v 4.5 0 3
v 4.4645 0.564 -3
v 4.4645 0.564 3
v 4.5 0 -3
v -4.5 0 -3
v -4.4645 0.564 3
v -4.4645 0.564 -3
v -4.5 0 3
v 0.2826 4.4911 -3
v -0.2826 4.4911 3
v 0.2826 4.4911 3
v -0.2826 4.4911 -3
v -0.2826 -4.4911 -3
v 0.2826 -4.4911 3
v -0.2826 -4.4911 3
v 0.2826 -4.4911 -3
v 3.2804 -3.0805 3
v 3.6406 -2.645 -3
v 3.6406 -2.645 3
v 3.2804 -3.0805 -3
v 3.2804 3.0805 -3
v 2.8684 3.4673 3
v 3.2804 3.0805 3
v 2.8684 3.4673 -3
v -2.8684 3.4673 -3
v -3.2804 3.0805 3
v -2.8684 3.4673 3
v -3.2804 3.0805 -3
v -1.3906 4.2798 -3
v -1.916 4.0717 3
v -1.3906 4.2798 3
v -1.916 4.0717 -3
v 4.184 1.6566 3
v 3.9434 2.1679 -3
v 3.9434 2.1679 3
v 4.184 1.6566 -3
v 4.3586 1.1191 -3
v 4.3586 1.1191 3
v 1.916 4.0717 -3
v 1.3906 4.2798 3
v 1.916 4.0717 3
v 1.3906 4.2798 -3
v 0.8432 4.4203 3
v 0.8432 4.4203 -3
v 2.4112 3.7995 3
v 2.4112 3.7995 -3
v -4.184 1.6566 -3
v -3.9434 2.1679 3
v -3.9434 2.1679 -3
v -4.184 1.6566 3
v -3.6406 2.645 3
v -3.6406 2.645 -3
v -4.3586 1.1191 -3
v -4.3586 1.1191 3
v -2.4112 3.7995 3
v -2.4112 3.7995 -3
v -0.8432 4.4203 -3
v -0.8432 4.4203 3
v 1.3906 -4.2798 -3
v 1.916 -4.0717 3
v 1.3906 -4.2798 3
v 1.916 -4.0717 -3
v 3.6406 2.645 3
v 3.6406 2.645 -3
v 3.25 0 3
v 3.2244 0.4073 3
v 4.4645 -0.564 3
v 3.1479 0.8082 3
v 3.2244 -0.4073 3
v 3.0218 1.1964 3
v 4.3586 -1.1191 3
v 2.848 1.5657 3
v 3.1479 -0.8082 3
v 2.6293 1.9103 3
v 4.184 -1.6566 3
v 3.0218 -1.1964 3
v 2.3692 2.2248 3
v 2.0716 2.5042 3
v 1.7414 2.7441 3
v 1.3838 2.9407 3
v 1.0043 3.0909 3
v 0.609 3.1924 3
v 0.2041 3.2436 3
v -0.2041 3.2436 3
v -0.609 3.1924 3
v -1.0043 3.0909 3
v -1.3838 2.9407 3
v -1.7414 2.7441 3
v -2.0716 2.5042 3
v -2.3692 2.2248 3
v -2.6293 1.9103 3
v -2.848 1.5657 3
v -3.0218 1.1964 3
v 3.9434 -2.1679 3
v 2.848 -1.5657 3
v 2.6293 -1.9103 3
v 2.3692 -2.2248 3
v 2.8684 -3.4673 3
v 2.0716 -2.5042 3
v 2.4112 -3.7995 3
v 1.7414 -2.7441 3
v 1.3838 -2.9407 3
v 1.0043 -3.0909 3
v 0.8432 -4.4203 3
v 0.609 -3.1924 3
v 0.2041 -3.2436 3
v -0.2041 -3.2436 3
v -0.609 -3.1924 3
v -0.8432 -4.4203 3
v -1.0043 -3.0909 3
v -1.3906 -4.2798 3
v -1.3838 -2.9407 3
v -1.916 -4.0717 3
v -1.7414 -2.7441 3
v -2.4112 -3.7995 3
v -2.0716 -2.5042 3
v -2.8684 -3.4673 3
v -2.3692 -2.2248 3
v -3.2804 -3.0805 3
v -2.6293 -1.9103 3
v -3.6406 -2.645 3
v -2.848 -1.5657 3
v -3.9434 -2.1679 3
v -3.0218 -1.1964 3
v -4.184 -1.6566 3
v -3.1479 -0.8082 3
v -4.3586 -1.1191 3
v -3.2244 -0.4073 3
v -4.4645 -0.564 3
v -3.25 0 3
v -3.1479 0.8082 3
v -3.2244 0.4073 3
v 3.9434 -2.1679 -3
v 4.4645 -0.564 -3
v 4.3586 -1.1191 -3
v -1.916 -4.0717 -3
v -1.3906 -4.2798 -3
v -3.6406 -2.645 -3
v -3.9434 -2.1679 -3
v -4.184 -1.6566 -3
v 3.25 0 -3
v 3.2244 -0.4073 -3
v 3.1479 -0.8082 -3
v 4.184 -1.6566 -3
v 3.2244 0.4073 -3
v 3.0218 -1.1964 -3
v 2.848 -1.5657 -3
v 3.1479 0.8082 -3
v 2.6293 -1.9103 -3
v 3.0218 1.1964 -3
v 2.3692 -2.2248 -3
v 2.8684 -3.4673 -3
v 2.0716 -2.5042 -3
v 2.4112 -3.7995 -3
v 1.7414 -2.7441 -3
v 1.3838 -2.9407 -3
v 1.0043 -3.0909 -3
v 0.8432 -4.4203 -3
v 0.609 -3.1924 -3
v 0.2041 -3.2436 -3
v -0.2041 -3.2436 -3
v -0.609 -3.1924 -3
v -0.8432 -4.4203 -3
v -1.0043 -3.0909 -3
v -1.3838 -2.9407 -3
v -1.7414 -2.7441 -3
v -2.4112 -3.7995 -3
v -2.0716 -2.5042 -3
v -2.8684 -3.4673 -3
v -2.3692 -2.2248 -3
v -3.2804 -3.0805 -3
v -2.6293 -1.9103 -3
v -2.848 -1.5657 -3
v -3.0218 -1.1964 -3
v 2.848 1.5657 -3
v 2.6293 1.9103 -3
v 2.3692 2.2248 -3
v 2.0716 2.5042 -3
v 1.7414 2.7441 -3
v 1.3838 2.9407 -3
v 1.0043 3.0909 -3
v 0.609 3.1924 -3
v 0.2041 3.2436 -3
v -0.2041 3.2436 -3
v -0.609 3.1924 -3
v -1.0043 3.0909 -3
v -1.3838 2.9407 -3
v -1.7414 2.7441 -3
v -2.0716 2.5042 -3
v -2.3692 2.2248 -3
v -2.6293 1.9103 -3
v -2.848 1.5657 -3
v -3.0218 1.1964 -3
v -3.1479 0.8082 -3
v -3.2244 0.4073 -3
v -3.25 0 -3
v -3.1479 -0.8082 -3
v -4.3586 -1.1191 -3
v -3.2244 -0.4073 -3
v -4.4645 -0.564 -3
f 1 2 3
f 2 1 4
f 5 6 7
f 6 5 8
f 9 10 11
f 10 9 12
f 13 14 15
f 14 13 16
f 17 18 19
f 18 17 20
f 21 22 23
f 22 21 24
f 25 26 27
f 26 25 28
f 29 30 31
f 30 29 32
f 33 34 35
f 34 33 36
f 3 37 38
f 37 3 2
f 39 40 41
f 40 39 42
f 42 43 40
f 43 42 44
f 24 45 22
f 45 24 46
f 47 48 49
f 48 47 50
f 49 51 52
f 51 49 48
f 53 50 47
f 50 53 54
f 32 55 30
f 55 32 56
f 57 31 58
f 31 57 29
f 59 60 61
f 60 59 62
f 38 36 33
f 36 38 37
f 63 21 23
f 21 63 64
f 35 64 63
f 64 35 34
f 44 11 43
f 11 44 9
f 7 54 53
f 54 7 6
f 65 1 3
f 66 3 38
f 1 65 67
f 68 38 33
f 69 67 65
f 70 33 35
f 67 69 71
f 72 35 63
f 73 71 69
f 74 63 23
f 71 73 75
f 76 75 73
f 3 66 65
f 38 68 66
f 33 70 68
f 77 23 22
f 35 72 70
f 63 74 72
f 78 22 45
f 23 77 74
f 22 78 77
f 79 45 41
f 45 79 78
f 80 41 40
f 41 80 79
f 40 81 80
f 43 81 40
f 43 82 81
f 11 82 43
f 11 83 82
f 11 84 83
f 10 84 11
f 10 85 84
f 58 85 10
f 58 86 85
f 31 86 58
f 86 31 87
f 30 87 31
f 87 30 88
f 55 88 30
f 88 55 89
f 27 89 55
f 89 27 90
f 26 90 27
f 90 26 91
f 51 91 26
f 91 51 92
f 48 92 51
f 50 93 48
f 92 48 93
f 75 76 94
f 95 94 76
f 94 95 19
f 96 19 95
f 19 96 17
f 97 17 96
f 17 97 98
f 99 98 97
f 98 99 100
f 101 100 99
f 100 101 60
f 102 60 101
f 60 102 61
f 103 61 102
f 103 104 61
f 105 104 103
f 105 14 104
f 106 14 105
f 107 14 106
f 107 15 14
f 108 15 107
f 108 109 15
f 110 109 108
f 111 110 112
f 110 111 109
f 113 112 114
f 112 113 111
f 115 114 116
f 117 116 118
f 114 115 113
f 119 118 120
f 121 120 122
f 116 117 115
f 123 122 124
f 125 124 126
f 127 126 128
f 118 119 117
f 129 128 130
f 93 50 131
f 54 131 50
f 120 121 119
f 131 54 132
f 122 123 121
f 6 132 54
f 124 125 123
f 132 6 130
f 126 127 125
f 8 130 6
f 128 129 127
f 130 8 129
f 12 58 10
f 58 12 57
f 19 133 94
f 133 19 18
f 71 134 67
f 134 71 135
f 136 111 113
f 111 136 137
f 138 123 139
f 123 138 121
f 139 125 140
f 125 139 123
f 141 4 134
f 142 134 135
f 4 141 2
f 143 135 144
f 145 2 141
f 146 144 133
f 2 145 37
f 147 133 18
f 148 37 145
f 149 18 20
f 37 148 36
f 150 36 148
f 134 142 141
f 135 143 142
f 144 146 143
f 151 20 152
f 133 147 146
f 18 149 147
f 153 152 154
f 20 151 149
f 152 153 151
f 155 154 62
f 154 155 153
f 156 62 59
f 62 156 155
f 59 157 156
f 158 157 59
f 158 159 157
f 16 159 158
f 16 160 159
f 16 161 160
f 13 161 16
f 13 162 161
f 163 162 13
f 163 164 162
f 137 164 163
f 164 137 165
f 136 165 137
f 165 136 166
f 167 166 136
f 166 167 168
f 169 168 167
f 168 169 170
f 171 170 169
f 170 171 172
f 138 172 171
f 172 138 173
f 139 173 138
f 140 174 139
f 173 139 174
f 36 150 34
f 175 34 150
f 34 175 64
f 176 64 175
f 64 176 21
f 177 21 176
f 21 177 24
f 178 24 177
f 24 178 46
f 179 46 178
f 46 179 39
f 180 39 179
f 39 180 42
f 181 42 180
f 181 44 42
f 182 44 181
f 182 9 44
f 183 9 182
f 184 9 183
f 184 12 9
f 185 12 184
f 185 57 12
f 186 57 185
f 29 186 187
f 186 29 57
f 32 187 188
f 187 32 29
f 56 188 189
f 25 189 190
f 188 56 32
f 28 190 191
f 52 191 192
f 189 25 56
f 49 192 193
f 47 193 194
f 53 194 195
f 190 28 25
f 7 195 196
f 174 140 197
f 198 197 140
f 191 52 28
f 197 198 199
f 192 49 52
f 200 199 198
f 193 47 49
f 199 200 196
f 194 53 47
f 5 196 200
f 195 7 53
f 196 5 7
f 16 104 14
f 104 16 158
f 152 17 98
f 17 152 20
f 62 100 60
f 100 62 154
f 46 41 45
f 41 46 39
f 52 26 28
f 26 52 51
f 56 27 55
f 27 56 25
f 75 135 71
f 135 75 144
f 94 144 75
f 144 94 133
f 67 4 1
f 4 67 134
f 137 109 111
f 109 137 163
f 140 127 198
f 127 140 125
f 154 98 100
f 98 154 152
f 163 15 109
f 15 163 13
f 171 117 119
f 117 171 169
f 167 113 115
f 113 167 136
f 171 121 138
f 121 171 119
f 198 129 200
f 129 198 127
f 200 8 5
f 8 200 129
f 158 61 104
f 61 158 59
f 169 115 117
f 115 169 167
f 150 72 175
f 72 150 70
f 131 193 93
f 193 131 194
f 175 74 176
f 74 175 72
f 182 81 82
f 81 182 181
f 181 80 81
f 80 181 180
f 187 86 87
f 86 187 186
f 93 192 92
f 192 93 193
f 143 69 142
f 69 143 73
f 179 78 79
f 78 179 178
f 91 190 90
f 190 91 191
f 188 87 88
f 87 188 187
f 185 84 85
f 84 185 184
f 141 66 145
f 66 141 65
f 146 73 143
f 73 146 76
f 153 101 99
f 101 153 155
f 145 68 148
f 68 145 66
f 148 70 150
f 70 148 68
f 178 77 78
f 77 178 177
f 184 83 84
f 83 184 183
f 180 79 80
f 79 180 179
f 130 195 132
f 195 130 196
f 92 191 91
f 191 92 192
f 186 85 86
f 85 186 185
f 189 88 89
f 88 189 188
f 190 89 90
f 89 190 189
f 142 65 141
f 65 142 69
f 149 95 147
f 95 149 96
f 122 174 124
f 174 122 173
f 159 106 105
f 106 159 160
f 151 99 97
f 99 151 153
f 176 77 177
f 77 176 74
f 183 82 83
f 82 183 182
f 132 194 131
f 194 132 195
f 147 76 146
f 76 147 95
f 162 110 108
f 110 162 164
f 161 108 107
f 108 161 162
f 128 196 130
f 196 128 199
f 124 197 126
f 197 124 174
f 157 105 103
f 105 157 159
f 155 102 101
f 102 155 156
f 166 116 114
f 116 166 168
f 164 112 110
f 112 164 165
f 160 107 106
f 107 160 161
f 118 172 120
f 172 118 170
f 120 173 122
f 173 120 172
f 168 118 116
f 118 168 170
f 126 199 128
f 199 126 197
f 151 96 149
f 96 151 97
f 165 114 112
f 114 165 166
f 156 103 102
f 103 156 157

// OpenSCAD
$fn = 50;


difference() {
	union() {
		translate(v = [0, 0, -3.0000000000]) {
			cylinder(h = 6, r = 4.5000000000);
		}
	}
	union() {
		translate(v = [0, 0, -100.0000000000]) {
			cylinder(h = 200, r = 3.2500000000);
		}
	}
}
